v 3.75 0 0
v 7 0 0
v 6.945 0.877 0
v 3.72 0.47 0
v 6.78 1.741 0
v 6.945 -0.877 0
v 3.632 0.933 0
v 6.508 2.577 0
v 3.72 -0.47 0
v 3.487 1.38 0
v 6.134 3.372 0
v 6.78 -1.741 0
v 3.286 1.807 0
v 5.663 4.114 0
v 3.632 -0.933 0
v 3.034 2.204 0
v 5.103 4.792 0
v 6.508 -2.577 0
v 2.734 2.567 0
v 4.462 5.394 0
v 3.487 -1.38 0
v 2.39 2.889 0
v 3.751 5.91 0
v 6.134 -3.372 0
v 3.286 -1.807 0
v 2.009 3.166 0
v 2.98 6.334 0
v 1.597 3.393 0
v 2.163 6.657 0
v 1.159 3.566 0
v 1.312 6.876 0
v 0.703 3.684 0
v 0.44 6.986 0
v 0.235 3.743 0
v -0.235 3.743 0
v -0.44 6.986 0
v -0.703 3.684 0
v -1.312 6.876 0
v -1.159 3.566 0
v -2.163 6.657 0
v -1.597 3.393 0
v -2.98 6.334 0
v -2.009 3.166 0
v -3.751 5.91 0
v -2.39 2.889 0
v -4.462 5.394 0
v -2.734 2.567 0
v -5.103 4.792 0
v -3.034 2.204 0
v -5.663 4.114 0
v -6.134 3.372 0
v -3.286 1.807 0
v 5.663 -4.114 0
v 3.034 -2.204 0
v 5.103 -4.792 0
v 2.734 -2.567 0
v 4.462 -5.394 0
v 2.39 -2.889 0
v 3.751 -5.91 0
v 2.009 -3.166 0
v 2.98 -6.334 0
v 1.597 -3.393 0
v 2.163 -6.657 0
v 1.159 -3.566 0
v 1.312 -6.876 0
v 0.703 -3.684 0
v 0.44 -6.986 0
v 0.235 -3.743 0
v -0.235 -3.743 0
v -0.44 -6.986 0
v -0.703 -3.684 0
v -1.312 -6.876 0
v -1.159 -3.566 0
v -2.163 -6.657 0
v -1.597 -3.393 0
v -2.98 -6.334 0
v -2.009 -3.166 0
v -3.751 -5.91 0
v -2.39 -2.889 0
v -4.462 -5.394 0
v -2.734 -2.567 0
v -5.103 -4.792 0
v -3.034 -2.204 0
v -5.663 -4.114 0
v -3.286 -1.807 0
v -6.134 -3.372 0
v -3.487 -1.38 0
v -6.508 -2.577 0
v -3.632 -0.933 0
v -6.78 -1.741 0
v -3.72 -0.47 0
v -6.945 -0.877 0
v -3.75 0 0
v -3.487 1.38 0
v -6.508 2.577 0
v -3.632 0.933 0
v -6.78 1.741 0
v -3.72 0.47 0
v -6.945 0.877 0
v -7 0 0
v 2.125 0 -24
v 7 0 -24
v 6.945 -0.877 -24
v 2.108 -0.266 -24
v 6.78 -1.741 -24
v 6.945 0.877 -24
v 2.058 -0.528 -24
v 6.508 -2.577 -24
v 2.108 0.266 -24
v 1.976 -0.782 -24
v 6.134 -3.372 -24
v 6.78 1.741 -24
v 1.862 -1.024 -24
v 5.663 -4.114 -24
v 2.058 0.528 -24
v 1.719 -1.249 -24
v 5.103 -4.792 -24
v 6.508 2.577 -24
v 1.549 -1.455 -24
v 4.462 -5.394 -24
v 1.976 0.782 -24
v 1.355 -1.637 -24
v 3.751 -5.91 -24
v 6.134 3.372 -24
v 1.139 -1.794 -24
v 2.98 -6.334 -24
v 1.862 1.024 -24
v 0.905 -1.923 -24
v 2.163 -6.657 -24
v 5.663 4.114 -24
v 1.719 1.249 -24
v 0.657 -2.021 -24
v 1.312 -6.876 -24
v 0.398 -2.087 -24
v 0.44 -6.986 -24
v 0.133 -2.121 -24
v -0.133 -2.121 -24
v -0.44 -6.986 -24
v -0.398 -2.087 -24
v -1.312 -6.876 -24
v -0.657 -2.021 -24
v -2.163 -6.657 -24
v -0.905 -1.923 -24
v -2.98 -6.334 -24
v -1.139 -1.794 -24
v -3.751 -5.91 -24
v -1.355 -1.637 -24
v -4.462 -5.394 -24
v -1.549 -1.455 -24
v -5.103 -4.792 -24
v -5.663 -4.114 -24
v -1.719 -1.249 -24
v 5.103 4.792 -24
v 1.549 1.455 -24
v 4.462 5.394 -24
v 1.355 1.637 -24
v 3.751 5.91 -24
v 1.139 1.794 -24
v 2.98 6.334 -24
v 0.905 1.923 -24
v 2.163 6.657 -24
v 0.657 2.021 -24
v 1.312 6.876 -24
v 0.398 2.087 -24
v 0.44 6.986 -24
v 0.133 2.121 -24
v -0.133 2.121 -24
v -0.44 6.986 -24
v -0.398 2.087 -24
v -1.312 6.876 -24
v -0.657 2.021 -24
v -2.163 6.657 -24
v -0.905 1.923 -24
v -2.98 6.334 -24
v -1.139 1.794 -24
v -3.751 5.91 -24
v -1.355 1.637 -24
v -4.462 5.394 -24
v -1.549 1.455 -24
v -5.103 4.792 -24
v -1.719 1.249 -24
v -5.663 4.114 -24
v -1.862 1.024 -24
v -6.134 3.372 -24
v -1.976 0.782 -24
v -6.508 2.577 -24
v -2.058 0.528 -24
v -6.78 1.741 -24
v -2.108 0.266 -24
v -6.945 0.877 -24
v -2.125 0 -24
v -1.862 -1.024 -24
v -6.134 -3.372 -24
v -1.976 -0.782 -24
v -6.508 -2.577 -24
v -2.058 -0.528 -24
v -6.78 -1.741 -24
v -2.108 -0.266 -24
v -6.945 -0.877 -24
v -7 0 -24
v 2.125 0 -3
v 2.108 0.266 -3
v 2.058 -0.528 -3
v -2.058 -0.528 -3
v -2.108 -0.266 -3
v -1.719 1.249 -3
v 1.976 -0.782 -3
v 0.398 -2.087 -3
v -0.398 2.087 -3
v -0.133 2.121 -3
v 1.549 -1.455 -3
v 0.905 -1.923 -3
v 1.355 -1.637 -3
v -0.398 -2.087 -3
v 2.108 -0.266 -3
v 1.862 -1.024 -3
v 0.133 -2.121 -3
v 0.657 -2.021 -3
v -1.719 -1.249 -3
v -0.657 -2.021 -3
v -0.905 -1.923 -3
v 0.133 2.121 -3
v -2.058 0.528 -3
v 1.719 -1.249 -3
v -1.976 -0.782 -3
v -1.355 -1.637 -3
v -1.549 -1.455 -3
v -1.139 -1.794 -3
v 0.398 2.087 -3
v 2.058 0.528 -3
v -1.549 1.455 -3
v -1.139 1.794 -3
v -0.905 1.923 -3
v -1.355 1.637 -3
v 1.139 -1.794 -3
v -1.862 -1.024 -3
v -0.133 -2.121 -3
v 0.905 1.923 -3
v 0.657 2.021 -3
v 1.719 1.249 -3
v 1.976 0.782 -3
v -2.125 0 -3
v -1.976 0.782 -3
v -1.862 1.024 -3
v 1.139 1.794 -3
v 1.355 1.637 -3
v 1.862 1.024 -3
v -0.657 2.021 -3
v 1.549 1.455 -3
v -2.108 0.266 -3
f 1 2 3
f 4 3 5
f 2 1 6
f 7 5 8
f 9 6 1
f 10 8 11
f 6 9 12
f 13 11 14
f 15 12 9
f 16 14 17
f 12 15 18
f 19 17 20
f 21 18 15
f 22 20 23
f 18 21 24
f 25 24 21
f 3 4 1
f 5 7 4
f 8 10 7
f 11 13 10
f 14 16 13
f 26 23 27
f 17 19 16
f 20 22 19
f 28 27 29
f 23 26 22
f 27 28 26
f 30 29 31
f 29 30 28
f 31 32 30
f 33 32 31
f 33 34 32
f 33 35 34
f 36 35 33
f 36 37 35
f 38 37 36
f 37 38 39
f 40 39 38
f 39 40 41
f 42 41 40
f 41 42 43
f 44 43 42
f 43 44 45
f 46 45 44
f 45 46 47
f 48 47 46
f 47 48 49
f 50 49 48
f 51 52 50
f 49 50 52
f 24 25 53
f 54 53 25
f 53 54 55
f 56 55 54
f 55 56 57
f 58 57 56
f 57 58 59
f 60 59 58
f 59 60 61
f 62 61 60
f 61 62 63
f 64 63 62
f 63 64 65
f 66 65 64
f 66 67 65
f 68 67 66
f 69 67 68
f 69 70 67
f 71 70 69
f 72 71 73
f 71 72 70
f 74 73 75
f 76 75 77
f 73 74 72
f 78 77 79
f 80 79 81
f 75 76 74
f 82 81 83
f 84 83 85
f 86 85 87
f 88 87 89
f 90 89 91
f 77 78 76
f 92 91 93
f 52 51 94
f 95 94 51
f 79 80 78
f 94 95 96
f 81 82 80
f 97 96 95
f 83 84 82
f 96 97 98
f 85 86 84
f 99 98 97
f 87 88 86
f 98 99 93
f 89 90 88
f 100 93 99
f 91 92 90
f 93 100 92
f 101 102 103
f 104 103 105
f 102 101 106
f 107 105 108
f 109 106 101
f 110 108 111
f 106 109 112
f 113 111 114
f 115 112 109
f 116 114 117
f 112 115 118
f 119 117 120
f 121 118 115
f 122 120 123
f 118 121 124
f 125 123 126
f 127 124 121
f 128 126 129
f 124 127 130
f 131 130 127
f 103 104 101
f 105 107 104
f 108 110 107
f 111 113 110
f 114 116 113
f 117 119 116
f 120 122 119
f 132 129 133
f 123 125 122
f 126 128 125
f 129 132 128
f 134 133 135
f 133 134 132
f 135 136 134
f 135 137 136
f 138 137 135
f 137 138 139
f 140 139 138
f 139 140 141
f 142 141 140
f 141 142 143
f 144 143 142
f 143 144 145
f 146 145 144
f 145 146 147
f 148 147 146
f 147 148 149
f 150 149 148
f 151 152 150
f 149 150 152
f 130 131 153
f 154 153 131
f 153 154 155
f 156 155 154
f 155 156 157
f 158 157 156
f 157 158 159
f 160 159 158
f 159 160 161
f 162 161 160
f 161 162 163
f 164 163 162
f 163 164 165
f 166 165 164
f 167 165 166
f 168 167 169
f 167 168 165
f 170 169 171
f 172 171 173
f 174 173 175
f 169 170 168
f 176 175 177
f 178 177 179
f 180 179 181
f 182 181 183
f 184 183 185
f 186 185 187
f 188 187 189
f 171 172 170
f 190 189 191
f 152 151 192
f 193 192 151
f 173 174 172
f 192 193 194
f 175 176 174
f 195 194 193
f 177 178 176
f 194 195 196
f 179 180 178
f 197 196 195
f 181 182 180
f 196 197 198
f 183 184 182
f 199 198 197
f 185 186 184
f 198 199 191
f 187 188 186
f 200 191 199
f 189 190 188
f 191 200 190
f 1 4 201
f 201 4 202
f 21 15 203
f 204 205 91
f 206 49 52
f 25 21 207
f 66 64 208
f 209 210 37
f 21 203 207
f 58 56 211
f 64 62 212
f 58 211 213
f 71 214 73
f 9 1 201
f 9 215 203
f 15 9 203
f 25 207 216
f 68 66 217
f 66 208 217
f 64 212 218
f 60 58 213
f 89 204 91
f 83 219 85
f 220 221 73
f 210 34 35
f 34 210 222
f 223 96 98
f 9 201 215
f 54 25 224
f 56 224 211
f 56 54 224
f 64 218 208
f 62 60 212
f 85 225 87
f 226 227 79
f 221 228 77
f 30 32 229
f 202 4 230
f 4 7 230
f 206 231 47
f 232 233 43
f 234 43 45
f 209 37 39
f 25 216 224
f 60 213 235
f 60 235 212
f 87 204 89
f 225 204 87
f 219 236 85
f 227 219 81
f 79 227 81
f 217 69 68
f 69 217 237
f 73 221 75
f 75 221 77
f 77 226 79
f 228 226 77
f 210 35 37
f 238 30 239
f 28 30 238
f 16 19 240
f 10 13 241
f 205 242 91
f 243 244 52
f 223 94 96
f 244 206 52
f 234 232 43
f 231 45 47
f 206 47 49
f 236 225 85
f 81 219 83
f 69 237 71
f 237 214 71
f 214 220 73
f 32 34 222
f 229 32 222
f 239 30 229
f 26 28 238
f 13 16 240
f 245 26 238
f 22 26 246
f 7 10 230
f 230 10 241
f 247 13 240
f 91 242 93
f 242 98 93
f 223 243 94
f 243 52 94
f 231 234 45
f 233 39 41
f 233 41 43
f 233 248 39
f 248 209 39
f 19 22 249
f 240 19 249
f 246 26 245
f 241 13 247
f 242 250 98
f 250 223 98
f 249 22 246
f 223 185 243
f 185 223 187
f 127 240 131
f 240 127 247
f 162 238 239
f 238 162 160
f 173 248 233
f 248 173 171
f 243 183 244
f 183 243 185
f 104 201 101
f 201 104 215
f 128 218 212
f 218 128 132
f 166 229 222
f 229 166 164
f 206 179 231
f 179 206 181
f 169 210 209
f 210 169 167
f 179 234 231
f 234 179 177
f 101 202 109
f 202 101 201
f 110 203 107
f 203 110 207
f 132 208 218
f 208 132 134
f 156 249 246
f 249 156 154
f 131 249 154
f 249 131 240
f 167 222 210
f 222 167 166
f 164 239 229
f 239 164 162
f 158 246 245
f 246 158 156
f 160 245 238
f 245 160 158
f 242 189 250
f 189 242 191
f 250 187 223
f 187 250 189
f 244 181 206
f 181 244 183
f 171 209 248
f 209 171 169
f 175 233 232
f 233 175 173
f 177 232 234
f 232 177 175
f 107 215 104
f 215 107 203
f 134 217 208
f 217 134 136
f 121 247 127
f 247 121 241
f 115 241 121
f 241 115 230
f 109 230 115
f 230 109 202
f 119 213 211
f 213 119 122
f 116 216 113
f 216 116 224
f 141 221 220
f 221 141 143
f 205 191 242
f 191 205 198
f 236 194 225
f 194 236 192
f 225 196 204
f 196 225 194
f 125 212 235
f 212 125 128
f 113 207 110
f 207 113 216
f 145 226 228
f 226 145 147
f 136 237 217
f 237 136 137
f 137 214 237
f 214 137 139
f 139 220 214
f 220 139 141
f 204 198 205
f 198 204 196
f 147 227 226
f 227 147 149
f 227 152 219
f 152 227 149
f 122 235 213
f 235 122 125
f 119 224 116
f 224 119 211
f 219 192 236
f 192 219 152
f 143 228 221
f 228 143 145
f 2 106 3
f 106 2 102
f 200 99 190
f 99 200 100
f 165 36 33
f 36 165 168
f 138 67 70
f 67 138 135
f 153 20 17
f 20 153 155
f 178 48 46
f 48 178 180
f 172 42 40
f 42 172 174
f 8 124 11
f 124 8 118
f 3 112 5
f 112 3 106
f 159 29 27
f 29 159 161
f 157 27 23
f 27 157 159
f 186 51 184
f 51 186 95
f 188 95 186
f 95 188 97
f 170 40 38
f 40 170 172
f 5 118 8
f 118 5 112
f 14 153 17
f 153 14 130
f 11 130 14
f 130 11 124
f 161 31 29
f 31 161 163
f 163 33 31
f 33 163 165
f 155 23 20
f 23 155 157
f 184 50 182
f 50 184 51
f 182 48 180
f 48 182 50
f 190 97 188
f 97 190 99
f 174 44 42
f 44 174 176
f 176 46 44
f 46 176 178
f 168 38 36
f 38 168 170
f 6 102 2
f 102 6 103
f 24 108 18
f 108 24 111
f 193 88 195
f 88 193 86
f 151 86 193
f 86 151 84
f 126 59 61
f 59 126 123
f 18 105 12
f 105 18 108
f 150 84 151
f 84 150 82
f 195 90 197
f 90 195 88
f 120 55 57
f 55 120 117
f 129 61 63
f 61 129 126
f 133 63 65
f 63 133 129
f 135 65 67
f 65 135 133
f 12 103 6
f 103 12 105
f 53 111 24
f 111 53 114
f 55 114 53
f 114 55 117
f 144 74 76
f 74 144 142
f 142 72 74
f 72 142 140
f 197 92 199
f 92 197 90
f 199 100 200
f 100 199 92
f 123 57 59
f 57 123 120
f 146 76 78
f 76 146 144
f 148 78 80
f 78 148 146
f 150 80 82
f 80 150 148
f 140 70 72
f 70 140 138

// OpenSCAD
$fn = 50;


difference() {
	union() {
		translate(v = [0, 0, -24.0000000000]) {
			cylinder(h = 24, r = 7.0000000000);
		}
		cylinder(h = 0, r = 16.0000000000);
	}
	union() {
		translate(v = [0, 0, 0]) {
			rotate(a = [0, 0, 0]) {
				difference() {
					union() {
						#translate(v = [0, 0, -24.0000000000]) {
							cylinder(h = 24, r = 2.0000000000);
						}
						#translate(v = [0, 0, -3]) {
							cylinder(h = 3, r = 7.0000000000, r1 = 2.1250000000, r2 = 3.7500000000);
						}
						#translate(v = [0, 0, -24.0000000000]) {
							cylinder(h = 24, r = 2.1250000000);
						}
						#translate(v = [0, 0, -24.0000000000]) {
							cylinder(h = 24, r = 2.0000000000);
						}
					}
					union();
				}
			}
		}
	}
}
